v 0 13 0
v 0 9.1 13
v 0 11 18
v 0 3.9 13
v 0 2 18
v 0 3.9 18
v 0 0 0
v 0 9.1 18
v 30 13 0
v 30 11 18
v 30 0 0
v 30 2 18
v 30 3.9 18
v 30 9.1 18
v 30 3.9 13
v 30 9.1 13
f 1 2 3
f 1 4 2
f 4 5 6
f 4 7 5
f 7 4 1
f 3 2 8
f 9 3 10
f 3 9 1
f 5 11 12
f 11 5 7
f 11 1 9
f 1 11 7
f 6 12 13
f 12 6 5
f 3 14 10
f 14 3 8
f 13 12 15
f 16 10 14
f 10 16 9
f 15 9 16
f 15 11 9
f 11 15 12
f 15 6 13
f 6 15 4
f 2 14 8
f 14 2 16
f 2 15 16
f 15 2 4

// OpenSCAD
// 5 cm <--->
// 15 cm |
// 156 cm <---->

module ground(height) {
  linear_extrude(height= height) {
    polygon(points=[
        [0,0],
        [13,0],
        [11,18],
        [2,18]
    ], height=1);
  }
}

module nut(height) {
  translate([0, 0, -1]) {
    linear_extrude(height=height+2) {
      polygon(points=[
          [3.9,13],
          [9.1,13],
          [9.1,19],
          [3.9,19]
      ], height=1);
    }
  }
}

module jack(width) {
  // width will become height in child components
  // due to transformation rules
  rotate([90, 0, 90]) {
    difference() {
      ground(width);
      nut(width);
    }
  }
}

jack(30);
